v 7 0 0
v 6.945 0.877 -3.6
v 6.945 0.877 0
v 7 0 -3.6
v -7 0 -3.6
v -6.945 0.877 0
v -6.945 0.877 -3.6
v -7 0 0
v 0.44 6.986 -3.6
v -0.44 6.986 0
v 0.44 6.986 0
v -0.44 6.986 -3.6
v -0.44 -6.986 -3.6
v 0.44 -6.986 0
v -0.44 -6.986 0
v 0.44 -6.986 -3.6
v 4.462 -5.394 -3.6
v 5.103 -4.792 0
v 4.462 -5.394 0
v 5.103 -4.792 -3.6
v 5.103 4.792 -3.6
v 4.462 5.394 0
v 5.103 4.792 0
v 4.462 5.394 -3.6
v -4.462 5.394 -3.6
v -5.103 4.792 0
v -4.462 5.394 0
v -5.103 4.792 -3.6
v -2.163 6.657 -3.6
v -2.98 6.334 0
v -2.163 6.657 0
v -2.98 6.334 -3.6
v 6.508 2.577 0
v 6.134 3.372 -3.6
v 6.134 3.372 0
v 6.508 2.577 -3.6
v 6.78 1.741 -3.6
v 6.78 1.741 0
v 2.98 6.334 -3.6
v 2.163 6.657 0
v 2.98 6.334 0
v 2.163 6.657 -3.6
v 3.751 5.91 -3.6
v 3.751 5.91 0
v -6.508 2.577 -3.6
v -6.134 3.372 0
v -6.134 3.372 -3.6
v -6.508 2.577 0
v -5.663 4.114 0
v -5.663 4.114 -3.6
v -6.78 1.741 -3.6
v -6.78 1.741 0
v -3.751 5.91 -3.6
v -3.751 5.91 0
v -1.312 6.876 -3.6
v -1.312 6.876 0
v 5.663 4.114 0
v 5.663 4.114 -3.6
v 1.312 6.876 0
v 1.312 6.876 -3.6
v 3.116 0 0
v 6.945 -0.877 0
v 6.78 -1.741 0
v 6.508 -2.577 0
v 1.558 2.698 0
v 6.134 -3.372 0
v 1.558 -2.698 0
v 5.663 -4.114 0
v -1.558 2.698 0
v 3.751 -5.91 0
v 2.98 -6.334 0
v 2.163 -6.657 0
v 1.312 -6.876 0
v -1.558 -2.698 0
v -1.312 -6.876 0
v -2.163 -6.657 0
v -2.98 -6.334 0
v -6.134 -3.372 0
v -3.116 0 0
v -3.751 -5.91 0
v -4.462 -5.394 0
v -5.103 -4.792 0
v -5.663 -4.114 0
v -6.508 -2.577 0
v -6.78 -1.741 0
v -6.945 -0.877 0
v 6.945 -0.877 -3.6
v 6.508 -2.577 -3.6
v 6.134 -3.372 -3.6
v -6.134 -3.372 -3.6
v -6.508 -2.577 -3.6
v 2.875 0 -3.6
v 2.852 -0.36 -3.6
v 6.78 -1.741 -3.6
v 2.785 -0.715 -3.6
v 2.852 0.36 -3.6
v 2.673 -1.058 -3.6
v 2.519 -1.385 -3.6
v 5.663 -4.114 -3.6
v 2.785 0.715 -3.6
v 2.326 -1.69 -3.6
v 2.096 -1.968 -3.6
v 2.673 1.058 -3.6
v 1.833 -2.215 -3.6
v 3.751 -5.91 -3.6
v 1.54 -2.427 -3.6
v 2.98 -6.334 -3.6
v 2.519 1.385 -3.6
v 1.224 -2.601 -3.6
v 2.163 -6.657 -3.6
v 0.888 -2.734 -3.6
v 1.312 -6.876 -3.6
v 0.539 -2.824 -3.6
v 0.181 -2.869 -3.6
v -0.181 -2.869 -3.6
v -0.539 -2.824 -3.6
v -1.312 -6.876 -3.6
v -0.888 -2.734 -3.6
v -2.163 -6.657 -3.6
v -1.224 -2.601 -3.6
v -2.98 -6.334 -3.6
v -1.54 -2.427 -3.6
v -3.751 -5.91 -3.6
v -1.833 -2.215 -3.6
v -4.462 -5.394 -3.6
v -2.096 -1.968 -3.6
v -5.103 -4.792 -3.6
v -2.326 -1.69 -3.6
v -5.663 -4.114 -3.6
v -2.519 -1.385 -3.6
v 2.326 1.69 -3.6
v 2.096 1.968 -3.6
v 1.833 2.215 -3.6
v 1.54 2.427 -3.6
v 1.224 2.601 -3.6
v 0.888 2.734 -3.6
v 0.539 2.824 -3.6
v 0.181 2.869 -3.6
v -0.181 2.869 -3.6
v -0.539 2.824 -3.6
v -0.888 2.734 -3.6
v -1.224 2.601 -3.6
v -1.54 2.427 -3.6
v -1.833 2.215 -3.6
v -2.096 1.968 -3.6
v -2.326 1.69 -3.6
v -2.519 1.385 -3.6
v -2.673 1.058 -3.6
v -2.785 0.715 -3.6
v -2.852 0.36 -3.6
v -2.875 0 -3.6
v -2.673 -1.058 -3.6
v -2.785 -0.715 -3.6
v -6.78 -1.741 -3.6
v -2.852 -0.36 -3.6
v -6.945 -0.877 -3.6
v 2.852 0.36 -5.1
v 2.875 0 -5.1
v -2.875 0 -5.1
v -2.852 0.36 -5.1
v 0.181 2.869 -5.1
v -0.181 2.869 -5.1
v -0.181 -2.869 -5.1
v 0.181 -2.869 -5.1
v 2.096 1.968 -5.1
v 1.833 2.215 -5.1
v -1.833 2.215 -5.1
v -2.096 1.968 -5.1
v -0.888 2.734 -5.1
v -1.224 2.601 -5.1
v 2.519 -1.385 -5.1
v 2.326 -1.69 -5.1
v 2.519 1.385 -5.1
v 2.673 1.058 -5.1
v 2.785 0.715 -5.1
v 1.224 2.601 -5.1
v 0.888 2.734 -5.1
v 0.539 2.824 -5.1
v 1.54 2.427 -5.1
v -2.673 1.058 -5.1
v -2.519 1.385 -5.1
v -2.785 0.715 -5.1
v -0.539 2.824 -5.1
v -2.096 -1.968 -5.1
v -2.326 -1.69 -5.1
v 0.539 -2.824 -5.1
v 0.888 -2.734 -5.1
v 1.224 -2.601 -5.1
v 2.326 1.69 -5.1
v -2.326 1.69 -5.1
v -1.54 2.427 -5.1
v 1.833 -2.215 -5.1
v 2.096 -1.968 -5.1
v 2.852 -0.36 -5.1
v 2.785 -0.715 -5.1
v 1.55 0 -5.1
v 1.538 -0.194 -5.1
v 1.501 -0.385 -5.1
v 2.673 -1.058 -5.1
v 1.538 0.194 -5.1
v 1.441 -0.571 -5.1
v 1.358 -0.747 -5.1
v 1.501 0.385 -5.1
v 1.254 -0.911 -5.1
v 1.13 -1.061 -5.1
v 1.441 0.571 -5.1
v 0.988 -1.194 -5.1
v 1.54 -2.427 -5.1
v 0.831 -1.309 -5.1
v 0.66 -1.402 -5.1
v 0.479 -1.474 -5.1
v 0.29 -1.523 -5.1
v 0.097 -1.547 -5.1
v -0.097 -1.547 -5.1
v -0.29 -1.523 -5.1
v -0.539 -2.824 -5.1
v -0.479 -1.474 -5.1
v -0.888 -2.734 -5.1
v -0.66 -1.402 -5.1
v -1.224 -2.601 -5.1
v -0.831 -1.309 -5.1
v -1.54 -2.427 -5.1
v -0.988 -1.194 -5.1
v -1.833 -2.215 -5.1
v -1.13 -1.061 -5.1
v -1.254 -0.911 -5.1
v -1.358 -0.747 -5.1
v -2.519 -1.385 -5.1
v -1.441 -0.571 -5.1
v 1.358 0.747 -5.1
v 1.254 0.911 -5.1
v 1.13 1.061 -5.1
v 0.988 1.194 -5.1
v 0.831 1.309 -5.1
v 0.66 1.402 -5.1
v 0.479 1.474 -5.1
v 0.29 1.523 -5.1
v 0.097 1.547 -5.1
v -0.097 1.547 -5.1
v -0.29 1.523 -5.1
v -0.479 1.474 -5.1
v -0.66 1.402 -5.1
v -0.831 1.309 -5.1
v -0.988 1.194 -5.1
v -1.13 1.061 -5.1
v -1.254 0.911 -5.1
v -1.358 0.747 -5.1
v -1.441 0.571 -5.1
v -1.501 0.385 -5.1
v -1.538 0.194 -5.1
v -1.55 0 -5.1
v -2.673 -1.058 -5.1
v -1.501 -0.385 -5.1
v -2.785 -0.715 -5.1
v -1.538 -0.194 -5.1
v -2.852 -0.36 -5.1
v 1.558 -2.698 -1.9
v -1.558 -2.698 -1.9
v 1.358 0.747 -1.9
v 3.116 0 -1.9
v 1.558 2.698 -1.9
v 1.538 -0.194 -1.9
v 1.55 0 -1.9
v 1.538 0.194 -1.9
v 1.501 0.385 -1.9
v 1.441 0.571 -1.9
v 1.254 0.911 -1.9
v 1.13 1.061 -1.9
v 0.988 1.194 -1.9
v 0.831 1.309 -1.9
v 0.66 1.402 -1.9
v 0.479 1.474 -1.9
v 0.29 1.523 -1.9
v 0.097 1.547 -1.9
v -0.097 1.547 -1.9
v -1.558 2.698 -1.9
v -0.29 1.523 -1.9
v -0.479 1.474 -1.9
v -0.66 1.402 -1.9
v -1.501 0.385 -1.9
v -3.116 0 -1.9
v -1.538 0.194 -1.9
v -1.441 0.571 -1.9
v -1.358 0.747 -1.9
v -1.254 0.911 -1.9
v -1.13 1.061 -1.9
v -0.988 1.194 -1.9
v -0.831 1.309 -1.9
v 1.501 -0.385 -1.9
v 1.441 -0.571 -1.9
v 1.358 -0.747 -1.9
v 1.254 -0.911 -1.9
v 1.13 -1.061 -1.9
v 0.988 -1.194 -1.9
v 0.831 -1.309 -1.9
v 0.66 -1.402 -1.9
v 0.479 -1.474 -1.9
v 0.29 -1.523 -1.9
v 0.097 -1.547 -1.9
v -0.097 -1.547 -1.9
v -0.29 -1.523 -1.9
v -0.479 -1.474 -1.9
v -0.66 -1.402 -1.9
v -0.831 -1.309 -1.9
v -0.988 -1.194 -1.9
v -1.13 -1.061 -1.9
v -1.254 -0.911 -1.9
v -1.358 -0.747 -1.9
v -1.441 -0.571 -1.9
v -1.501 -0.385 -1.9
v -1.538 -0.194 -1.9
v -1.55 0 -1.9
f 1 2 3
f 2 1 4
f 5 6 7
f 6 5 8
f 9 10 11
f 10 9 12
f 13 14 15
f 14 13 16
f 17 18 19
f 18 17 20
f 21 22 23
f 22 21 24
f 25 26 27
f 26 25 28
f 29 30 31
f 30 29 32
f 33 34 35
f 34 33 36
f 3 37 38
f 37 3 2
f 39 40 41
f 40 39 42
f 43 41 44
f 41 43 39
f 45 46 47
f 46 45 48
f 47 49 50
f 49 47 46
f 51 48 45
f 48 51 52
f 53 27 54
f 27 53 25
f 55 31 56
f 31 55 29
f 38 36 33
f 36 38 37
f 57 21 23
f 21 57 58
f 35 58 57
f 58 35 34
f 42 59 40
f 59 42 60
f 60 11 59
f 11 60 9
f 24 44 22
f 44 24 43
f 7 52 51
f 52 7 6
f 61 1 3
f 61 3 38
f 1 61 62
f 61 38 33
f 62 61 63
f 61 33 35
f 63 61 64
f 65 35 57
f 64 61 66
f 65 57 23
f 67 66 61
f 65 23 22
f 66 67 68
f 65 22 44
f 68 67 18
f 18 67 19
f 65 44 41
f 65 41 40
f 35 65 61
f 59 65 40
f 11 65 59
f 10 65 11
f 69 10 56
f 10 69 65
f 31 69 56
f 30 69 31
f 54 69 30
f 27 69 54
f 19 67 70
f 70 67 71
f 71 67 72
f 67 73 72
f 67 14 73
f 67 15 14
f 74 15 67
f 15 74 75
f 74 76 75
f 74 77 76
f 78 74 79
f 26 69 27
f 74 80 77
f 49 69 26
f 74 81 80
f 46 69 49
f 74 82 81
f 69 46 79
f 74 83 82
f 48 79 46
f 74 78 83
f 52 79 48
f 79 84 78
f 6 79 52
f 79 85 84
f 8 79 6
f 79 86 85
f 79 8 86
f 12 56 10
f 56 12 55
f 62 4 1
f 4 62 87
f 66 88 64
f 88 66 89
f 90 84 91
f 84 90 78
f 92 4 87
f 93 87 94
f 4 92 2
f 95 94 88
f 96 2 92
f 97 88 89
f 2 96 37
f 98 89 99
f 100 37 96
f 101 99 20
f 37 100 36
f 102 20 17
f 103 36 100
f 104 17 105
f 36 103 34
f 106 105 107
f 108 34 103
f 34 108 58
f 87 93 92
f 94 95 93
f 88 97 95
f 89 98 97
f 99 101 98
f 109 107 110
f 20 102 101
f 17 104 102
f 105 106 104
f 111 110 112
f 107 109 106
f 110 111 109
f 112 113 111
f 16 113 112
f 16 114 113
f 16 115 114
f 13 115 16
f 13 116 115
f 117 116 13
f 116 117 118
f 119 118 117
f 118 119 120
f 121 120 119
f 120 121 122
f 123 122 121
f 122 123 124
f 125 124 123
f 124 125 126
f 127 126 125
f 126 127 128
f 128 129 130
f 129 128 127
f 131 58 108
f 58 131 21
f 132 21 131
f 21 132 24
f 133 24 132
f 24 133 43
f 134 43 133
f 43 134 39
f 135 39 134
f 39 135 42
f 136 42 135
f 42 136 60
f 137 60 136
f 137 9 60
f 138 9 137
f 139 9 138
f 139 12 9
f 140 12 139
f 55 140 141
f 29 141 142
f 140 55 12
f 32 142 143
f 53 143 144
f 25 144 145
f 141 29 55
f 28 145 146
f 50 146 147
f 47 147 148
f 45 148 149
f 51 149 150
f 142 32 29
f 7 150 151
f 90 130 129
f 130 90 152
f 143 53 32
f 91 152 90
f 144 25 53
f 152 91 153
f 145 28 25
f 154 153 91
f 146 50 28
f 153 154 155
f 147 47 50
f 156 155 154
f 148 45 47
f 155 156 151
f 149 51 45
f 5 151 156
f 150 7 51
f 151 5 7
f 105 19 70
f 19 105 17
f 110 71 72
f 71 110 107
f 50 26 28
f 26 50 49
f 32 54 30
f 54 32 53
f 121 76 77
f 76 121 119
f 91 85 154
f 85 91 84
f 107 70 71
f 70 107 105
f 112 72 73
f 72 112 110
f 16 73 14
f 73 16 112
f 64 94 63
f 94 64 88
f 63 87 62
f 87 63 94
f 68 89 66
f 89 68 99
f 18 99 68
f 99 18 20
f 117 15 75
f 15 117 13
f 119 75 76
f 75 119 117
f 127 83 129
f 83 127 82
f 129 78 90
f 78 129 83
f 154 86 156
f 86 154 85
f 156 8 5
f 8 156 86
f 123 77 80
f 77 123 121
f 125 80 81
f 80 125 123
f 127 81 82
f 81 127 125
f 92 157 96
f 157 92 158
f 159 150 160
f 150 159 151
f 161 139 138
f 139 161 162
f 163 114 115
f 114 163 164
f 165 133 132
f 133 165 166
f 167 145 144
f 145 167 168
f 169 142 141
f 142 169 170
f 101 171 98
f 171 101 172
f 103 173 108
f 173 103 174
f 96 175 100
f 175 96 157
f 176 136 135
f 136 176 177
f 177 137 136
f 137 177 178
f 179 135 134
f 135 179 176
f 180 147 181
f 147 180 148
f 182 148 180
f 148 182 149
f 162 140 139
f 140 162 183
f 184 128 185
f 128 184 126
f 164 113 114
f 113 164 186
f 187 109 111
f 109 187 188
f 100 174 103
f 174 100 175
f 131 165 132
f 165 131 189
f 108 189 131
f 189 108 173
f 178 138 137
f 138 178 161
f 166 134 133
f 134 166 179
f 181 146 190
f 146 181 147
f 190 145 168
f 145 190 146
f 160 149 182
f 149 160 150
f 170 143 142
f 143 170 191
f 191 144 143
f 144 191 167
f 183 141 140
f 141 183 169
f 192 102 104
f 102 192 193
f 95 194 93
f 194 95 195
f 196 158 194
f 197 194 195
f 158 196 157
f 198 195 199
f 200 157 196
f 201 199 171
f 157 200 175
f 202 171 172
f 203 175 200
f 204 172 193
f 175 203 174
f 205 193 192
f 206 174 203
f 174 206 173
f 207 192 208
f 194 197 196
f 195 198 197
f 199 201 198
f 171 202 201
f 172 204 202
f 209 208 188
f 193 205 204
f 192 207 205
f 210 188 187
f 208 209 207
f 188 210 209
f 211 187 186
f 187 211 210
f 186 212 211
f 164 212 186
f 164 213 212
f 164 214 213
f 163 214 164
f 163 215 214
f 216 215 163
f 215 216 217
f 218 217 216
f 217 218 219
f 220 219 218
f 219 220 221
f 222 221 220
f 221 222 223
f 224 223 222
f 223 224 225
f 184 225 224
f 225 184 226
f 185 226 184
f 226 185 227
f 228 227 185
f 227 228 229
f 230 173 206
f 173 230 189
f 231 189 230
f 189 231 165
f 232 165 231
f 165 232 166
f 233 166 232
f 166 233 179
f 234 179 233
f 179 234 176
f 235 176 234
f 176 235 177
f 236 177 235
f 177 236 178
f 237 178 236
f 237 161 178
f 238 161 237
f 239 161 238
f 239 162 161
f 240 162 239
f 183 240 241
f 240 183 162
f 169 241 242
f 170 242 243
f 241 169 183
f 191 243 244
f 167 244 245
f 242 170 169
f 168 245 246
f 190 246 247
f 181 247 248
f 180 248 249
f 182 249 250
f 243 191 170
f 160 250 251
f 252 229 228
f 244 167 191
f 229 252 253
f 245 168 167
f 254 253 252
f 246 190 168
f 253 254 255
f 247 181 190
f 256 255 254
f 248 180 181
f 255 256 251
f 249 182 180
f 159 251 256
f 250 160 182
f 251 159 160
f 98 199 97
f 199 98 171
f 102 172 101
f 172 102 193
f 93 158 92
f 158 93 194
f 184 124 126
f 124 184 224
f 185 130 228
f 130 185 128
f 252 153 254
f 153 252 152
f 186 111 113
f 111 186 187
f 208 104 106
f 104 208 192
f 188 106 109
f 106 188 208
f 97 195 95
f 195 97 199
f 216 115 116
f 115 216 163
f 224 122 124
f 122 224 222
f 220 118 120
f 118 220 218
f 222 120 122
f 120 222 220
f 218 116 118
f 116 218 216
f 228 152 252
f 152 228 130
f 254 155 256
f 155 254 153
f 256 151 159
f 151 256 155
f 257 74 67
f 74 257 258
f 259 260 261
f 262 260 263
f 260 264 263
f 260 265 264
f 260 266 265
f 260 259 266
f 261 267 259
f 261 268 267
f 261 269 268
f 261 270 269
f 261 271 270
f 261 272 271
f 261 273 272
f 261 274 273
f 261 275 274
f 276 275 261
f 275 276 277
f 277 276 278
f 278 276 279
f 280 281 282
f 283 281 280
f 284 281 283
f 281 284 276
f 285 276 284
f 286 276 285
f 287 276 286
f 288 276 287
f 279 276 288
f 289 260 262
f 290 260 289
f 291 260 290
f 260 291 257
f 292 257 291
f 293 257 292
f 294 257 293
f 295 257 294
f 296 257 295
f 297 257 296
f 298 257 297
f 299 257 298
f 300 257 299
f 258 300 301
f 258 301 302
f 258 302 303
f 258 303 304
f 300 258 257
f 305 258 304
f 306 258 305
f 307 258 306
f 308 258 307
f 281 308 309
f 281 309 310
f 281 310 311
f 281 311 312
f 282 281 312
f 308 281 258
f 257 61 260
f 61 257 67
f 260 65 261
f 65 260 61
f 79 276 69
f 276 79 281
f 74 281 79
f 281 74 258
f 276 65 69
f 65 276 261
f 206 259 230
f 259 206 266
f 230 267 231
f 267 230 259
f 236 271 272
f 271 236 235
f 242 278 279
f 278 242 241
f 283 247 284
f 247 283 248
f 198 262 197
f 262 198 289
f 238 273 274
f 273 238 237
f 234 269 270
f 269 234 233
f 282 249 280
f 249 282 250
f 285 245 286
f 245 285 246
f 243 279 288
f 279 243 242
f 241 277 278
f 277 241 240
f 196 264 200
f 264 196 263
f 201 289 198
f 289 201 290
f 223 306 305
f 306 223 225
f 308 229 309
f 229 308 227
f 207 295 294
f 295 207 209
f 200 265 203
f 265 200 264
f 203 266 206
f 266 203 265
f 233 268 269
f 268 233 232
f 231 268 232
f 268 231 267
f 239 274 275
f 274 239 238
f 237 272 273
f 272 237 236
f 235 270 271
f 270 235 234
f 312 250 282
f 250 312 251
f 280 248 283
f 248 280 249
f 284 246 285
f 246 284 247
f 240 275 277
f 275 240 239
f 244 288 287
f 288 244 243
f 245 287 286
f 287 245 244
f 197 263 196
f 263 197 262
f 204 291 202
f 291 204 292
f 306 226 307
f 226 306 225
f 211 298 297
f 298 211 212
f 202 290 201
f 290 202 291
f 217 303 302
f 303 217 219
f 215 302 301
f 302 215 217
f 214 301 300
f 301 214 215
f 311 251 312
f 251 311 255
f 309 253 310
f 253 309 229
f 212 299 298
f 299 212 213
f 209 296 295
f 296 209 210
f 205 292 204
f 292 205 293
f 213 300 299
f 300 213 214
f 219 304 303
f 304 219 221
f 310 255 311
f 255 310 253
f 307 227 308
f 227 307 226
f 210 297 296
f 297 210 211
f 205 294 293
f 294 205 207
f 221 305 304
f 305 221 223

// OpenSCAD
$fn = 50;


difference() {
	union() {
		translate(v = [0, 0, -3.6000000000]) {
			cylinder(h = 3.6000000000, r = 7.0000000000);
		}
		#translate(v = [0, 0, -5.1000000000]) {
			cylinder(h = 5.1000000000, r = 2.8750000000);
		}
	}
	union() {
		translate(v = [0, 0, 0]) {
			rotate(a = [0, 0, 0]) {
				difference() {
					union() {
						translate(v = [0, 0, -1.9000000000]) {
							linear_extrude(height = 1.9000000000) {
								polygon(points = [[3.1158000000, 0.0000000000], [1.5579000000, 2.6983619531], [-1.5579000000, 2.6983619531], [-3.1158000000, 0.0000000000], [-1.5579000000, -2.6983619531], [1.5579000000, -2.6983619531]]);
							}
						}
					}
					union();
				}
			}
		}
		#translate(v = [0, 0, -100.0000000000]) {
			cylinder(h = 200, r = 1.5500000000);
		}
	}
}
